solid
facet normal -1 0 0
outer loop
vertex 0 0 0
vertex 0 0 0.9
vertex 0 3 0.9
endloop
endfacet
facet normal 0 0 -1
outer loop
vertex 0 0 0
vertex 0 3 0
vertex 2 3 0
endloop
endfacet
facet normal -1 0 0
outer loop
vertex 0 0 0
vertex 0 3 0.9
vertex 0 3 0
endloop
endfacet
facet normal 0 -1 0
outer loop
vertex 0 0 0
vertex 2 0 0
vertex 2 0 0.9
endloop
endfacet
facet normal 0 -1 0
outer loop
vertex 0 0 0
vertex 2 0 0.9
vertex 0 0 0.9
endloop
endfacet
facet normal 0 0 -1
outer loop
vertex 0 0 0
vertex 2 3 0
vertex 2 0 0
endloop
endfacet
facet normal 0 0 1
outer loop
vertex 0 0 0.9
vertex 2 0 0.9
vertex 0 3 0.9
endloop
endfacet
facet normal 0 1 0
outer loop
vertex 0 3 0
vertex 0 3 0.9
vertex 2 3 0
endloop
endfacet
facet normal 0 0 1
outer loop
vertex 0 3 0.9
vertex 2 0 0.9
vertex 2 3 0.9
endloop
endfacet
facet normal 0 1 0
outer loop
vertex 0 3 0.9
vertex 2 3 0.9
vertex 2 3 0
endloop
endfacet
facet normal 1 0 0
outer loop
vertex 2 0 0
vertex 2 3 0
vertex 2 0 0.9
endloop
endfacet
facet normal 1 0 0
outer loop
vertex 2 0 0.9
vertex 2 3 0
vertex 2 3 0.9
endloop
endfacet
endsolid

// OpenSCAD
/* Warning, this is a very basic generator with a lot of approximation 
input data : [DFN, J9X, 2x3x0.9mm, 6, , A, C04-00134A]
generated by com.zoubworld.electronics.cad.model3d.Basic
Date : Sun Feb 15 10:50:48 CET 2026
*/

//body
color("black")
translate([0,0,0])
cube([2.0,3.0,0.9], center=false);
